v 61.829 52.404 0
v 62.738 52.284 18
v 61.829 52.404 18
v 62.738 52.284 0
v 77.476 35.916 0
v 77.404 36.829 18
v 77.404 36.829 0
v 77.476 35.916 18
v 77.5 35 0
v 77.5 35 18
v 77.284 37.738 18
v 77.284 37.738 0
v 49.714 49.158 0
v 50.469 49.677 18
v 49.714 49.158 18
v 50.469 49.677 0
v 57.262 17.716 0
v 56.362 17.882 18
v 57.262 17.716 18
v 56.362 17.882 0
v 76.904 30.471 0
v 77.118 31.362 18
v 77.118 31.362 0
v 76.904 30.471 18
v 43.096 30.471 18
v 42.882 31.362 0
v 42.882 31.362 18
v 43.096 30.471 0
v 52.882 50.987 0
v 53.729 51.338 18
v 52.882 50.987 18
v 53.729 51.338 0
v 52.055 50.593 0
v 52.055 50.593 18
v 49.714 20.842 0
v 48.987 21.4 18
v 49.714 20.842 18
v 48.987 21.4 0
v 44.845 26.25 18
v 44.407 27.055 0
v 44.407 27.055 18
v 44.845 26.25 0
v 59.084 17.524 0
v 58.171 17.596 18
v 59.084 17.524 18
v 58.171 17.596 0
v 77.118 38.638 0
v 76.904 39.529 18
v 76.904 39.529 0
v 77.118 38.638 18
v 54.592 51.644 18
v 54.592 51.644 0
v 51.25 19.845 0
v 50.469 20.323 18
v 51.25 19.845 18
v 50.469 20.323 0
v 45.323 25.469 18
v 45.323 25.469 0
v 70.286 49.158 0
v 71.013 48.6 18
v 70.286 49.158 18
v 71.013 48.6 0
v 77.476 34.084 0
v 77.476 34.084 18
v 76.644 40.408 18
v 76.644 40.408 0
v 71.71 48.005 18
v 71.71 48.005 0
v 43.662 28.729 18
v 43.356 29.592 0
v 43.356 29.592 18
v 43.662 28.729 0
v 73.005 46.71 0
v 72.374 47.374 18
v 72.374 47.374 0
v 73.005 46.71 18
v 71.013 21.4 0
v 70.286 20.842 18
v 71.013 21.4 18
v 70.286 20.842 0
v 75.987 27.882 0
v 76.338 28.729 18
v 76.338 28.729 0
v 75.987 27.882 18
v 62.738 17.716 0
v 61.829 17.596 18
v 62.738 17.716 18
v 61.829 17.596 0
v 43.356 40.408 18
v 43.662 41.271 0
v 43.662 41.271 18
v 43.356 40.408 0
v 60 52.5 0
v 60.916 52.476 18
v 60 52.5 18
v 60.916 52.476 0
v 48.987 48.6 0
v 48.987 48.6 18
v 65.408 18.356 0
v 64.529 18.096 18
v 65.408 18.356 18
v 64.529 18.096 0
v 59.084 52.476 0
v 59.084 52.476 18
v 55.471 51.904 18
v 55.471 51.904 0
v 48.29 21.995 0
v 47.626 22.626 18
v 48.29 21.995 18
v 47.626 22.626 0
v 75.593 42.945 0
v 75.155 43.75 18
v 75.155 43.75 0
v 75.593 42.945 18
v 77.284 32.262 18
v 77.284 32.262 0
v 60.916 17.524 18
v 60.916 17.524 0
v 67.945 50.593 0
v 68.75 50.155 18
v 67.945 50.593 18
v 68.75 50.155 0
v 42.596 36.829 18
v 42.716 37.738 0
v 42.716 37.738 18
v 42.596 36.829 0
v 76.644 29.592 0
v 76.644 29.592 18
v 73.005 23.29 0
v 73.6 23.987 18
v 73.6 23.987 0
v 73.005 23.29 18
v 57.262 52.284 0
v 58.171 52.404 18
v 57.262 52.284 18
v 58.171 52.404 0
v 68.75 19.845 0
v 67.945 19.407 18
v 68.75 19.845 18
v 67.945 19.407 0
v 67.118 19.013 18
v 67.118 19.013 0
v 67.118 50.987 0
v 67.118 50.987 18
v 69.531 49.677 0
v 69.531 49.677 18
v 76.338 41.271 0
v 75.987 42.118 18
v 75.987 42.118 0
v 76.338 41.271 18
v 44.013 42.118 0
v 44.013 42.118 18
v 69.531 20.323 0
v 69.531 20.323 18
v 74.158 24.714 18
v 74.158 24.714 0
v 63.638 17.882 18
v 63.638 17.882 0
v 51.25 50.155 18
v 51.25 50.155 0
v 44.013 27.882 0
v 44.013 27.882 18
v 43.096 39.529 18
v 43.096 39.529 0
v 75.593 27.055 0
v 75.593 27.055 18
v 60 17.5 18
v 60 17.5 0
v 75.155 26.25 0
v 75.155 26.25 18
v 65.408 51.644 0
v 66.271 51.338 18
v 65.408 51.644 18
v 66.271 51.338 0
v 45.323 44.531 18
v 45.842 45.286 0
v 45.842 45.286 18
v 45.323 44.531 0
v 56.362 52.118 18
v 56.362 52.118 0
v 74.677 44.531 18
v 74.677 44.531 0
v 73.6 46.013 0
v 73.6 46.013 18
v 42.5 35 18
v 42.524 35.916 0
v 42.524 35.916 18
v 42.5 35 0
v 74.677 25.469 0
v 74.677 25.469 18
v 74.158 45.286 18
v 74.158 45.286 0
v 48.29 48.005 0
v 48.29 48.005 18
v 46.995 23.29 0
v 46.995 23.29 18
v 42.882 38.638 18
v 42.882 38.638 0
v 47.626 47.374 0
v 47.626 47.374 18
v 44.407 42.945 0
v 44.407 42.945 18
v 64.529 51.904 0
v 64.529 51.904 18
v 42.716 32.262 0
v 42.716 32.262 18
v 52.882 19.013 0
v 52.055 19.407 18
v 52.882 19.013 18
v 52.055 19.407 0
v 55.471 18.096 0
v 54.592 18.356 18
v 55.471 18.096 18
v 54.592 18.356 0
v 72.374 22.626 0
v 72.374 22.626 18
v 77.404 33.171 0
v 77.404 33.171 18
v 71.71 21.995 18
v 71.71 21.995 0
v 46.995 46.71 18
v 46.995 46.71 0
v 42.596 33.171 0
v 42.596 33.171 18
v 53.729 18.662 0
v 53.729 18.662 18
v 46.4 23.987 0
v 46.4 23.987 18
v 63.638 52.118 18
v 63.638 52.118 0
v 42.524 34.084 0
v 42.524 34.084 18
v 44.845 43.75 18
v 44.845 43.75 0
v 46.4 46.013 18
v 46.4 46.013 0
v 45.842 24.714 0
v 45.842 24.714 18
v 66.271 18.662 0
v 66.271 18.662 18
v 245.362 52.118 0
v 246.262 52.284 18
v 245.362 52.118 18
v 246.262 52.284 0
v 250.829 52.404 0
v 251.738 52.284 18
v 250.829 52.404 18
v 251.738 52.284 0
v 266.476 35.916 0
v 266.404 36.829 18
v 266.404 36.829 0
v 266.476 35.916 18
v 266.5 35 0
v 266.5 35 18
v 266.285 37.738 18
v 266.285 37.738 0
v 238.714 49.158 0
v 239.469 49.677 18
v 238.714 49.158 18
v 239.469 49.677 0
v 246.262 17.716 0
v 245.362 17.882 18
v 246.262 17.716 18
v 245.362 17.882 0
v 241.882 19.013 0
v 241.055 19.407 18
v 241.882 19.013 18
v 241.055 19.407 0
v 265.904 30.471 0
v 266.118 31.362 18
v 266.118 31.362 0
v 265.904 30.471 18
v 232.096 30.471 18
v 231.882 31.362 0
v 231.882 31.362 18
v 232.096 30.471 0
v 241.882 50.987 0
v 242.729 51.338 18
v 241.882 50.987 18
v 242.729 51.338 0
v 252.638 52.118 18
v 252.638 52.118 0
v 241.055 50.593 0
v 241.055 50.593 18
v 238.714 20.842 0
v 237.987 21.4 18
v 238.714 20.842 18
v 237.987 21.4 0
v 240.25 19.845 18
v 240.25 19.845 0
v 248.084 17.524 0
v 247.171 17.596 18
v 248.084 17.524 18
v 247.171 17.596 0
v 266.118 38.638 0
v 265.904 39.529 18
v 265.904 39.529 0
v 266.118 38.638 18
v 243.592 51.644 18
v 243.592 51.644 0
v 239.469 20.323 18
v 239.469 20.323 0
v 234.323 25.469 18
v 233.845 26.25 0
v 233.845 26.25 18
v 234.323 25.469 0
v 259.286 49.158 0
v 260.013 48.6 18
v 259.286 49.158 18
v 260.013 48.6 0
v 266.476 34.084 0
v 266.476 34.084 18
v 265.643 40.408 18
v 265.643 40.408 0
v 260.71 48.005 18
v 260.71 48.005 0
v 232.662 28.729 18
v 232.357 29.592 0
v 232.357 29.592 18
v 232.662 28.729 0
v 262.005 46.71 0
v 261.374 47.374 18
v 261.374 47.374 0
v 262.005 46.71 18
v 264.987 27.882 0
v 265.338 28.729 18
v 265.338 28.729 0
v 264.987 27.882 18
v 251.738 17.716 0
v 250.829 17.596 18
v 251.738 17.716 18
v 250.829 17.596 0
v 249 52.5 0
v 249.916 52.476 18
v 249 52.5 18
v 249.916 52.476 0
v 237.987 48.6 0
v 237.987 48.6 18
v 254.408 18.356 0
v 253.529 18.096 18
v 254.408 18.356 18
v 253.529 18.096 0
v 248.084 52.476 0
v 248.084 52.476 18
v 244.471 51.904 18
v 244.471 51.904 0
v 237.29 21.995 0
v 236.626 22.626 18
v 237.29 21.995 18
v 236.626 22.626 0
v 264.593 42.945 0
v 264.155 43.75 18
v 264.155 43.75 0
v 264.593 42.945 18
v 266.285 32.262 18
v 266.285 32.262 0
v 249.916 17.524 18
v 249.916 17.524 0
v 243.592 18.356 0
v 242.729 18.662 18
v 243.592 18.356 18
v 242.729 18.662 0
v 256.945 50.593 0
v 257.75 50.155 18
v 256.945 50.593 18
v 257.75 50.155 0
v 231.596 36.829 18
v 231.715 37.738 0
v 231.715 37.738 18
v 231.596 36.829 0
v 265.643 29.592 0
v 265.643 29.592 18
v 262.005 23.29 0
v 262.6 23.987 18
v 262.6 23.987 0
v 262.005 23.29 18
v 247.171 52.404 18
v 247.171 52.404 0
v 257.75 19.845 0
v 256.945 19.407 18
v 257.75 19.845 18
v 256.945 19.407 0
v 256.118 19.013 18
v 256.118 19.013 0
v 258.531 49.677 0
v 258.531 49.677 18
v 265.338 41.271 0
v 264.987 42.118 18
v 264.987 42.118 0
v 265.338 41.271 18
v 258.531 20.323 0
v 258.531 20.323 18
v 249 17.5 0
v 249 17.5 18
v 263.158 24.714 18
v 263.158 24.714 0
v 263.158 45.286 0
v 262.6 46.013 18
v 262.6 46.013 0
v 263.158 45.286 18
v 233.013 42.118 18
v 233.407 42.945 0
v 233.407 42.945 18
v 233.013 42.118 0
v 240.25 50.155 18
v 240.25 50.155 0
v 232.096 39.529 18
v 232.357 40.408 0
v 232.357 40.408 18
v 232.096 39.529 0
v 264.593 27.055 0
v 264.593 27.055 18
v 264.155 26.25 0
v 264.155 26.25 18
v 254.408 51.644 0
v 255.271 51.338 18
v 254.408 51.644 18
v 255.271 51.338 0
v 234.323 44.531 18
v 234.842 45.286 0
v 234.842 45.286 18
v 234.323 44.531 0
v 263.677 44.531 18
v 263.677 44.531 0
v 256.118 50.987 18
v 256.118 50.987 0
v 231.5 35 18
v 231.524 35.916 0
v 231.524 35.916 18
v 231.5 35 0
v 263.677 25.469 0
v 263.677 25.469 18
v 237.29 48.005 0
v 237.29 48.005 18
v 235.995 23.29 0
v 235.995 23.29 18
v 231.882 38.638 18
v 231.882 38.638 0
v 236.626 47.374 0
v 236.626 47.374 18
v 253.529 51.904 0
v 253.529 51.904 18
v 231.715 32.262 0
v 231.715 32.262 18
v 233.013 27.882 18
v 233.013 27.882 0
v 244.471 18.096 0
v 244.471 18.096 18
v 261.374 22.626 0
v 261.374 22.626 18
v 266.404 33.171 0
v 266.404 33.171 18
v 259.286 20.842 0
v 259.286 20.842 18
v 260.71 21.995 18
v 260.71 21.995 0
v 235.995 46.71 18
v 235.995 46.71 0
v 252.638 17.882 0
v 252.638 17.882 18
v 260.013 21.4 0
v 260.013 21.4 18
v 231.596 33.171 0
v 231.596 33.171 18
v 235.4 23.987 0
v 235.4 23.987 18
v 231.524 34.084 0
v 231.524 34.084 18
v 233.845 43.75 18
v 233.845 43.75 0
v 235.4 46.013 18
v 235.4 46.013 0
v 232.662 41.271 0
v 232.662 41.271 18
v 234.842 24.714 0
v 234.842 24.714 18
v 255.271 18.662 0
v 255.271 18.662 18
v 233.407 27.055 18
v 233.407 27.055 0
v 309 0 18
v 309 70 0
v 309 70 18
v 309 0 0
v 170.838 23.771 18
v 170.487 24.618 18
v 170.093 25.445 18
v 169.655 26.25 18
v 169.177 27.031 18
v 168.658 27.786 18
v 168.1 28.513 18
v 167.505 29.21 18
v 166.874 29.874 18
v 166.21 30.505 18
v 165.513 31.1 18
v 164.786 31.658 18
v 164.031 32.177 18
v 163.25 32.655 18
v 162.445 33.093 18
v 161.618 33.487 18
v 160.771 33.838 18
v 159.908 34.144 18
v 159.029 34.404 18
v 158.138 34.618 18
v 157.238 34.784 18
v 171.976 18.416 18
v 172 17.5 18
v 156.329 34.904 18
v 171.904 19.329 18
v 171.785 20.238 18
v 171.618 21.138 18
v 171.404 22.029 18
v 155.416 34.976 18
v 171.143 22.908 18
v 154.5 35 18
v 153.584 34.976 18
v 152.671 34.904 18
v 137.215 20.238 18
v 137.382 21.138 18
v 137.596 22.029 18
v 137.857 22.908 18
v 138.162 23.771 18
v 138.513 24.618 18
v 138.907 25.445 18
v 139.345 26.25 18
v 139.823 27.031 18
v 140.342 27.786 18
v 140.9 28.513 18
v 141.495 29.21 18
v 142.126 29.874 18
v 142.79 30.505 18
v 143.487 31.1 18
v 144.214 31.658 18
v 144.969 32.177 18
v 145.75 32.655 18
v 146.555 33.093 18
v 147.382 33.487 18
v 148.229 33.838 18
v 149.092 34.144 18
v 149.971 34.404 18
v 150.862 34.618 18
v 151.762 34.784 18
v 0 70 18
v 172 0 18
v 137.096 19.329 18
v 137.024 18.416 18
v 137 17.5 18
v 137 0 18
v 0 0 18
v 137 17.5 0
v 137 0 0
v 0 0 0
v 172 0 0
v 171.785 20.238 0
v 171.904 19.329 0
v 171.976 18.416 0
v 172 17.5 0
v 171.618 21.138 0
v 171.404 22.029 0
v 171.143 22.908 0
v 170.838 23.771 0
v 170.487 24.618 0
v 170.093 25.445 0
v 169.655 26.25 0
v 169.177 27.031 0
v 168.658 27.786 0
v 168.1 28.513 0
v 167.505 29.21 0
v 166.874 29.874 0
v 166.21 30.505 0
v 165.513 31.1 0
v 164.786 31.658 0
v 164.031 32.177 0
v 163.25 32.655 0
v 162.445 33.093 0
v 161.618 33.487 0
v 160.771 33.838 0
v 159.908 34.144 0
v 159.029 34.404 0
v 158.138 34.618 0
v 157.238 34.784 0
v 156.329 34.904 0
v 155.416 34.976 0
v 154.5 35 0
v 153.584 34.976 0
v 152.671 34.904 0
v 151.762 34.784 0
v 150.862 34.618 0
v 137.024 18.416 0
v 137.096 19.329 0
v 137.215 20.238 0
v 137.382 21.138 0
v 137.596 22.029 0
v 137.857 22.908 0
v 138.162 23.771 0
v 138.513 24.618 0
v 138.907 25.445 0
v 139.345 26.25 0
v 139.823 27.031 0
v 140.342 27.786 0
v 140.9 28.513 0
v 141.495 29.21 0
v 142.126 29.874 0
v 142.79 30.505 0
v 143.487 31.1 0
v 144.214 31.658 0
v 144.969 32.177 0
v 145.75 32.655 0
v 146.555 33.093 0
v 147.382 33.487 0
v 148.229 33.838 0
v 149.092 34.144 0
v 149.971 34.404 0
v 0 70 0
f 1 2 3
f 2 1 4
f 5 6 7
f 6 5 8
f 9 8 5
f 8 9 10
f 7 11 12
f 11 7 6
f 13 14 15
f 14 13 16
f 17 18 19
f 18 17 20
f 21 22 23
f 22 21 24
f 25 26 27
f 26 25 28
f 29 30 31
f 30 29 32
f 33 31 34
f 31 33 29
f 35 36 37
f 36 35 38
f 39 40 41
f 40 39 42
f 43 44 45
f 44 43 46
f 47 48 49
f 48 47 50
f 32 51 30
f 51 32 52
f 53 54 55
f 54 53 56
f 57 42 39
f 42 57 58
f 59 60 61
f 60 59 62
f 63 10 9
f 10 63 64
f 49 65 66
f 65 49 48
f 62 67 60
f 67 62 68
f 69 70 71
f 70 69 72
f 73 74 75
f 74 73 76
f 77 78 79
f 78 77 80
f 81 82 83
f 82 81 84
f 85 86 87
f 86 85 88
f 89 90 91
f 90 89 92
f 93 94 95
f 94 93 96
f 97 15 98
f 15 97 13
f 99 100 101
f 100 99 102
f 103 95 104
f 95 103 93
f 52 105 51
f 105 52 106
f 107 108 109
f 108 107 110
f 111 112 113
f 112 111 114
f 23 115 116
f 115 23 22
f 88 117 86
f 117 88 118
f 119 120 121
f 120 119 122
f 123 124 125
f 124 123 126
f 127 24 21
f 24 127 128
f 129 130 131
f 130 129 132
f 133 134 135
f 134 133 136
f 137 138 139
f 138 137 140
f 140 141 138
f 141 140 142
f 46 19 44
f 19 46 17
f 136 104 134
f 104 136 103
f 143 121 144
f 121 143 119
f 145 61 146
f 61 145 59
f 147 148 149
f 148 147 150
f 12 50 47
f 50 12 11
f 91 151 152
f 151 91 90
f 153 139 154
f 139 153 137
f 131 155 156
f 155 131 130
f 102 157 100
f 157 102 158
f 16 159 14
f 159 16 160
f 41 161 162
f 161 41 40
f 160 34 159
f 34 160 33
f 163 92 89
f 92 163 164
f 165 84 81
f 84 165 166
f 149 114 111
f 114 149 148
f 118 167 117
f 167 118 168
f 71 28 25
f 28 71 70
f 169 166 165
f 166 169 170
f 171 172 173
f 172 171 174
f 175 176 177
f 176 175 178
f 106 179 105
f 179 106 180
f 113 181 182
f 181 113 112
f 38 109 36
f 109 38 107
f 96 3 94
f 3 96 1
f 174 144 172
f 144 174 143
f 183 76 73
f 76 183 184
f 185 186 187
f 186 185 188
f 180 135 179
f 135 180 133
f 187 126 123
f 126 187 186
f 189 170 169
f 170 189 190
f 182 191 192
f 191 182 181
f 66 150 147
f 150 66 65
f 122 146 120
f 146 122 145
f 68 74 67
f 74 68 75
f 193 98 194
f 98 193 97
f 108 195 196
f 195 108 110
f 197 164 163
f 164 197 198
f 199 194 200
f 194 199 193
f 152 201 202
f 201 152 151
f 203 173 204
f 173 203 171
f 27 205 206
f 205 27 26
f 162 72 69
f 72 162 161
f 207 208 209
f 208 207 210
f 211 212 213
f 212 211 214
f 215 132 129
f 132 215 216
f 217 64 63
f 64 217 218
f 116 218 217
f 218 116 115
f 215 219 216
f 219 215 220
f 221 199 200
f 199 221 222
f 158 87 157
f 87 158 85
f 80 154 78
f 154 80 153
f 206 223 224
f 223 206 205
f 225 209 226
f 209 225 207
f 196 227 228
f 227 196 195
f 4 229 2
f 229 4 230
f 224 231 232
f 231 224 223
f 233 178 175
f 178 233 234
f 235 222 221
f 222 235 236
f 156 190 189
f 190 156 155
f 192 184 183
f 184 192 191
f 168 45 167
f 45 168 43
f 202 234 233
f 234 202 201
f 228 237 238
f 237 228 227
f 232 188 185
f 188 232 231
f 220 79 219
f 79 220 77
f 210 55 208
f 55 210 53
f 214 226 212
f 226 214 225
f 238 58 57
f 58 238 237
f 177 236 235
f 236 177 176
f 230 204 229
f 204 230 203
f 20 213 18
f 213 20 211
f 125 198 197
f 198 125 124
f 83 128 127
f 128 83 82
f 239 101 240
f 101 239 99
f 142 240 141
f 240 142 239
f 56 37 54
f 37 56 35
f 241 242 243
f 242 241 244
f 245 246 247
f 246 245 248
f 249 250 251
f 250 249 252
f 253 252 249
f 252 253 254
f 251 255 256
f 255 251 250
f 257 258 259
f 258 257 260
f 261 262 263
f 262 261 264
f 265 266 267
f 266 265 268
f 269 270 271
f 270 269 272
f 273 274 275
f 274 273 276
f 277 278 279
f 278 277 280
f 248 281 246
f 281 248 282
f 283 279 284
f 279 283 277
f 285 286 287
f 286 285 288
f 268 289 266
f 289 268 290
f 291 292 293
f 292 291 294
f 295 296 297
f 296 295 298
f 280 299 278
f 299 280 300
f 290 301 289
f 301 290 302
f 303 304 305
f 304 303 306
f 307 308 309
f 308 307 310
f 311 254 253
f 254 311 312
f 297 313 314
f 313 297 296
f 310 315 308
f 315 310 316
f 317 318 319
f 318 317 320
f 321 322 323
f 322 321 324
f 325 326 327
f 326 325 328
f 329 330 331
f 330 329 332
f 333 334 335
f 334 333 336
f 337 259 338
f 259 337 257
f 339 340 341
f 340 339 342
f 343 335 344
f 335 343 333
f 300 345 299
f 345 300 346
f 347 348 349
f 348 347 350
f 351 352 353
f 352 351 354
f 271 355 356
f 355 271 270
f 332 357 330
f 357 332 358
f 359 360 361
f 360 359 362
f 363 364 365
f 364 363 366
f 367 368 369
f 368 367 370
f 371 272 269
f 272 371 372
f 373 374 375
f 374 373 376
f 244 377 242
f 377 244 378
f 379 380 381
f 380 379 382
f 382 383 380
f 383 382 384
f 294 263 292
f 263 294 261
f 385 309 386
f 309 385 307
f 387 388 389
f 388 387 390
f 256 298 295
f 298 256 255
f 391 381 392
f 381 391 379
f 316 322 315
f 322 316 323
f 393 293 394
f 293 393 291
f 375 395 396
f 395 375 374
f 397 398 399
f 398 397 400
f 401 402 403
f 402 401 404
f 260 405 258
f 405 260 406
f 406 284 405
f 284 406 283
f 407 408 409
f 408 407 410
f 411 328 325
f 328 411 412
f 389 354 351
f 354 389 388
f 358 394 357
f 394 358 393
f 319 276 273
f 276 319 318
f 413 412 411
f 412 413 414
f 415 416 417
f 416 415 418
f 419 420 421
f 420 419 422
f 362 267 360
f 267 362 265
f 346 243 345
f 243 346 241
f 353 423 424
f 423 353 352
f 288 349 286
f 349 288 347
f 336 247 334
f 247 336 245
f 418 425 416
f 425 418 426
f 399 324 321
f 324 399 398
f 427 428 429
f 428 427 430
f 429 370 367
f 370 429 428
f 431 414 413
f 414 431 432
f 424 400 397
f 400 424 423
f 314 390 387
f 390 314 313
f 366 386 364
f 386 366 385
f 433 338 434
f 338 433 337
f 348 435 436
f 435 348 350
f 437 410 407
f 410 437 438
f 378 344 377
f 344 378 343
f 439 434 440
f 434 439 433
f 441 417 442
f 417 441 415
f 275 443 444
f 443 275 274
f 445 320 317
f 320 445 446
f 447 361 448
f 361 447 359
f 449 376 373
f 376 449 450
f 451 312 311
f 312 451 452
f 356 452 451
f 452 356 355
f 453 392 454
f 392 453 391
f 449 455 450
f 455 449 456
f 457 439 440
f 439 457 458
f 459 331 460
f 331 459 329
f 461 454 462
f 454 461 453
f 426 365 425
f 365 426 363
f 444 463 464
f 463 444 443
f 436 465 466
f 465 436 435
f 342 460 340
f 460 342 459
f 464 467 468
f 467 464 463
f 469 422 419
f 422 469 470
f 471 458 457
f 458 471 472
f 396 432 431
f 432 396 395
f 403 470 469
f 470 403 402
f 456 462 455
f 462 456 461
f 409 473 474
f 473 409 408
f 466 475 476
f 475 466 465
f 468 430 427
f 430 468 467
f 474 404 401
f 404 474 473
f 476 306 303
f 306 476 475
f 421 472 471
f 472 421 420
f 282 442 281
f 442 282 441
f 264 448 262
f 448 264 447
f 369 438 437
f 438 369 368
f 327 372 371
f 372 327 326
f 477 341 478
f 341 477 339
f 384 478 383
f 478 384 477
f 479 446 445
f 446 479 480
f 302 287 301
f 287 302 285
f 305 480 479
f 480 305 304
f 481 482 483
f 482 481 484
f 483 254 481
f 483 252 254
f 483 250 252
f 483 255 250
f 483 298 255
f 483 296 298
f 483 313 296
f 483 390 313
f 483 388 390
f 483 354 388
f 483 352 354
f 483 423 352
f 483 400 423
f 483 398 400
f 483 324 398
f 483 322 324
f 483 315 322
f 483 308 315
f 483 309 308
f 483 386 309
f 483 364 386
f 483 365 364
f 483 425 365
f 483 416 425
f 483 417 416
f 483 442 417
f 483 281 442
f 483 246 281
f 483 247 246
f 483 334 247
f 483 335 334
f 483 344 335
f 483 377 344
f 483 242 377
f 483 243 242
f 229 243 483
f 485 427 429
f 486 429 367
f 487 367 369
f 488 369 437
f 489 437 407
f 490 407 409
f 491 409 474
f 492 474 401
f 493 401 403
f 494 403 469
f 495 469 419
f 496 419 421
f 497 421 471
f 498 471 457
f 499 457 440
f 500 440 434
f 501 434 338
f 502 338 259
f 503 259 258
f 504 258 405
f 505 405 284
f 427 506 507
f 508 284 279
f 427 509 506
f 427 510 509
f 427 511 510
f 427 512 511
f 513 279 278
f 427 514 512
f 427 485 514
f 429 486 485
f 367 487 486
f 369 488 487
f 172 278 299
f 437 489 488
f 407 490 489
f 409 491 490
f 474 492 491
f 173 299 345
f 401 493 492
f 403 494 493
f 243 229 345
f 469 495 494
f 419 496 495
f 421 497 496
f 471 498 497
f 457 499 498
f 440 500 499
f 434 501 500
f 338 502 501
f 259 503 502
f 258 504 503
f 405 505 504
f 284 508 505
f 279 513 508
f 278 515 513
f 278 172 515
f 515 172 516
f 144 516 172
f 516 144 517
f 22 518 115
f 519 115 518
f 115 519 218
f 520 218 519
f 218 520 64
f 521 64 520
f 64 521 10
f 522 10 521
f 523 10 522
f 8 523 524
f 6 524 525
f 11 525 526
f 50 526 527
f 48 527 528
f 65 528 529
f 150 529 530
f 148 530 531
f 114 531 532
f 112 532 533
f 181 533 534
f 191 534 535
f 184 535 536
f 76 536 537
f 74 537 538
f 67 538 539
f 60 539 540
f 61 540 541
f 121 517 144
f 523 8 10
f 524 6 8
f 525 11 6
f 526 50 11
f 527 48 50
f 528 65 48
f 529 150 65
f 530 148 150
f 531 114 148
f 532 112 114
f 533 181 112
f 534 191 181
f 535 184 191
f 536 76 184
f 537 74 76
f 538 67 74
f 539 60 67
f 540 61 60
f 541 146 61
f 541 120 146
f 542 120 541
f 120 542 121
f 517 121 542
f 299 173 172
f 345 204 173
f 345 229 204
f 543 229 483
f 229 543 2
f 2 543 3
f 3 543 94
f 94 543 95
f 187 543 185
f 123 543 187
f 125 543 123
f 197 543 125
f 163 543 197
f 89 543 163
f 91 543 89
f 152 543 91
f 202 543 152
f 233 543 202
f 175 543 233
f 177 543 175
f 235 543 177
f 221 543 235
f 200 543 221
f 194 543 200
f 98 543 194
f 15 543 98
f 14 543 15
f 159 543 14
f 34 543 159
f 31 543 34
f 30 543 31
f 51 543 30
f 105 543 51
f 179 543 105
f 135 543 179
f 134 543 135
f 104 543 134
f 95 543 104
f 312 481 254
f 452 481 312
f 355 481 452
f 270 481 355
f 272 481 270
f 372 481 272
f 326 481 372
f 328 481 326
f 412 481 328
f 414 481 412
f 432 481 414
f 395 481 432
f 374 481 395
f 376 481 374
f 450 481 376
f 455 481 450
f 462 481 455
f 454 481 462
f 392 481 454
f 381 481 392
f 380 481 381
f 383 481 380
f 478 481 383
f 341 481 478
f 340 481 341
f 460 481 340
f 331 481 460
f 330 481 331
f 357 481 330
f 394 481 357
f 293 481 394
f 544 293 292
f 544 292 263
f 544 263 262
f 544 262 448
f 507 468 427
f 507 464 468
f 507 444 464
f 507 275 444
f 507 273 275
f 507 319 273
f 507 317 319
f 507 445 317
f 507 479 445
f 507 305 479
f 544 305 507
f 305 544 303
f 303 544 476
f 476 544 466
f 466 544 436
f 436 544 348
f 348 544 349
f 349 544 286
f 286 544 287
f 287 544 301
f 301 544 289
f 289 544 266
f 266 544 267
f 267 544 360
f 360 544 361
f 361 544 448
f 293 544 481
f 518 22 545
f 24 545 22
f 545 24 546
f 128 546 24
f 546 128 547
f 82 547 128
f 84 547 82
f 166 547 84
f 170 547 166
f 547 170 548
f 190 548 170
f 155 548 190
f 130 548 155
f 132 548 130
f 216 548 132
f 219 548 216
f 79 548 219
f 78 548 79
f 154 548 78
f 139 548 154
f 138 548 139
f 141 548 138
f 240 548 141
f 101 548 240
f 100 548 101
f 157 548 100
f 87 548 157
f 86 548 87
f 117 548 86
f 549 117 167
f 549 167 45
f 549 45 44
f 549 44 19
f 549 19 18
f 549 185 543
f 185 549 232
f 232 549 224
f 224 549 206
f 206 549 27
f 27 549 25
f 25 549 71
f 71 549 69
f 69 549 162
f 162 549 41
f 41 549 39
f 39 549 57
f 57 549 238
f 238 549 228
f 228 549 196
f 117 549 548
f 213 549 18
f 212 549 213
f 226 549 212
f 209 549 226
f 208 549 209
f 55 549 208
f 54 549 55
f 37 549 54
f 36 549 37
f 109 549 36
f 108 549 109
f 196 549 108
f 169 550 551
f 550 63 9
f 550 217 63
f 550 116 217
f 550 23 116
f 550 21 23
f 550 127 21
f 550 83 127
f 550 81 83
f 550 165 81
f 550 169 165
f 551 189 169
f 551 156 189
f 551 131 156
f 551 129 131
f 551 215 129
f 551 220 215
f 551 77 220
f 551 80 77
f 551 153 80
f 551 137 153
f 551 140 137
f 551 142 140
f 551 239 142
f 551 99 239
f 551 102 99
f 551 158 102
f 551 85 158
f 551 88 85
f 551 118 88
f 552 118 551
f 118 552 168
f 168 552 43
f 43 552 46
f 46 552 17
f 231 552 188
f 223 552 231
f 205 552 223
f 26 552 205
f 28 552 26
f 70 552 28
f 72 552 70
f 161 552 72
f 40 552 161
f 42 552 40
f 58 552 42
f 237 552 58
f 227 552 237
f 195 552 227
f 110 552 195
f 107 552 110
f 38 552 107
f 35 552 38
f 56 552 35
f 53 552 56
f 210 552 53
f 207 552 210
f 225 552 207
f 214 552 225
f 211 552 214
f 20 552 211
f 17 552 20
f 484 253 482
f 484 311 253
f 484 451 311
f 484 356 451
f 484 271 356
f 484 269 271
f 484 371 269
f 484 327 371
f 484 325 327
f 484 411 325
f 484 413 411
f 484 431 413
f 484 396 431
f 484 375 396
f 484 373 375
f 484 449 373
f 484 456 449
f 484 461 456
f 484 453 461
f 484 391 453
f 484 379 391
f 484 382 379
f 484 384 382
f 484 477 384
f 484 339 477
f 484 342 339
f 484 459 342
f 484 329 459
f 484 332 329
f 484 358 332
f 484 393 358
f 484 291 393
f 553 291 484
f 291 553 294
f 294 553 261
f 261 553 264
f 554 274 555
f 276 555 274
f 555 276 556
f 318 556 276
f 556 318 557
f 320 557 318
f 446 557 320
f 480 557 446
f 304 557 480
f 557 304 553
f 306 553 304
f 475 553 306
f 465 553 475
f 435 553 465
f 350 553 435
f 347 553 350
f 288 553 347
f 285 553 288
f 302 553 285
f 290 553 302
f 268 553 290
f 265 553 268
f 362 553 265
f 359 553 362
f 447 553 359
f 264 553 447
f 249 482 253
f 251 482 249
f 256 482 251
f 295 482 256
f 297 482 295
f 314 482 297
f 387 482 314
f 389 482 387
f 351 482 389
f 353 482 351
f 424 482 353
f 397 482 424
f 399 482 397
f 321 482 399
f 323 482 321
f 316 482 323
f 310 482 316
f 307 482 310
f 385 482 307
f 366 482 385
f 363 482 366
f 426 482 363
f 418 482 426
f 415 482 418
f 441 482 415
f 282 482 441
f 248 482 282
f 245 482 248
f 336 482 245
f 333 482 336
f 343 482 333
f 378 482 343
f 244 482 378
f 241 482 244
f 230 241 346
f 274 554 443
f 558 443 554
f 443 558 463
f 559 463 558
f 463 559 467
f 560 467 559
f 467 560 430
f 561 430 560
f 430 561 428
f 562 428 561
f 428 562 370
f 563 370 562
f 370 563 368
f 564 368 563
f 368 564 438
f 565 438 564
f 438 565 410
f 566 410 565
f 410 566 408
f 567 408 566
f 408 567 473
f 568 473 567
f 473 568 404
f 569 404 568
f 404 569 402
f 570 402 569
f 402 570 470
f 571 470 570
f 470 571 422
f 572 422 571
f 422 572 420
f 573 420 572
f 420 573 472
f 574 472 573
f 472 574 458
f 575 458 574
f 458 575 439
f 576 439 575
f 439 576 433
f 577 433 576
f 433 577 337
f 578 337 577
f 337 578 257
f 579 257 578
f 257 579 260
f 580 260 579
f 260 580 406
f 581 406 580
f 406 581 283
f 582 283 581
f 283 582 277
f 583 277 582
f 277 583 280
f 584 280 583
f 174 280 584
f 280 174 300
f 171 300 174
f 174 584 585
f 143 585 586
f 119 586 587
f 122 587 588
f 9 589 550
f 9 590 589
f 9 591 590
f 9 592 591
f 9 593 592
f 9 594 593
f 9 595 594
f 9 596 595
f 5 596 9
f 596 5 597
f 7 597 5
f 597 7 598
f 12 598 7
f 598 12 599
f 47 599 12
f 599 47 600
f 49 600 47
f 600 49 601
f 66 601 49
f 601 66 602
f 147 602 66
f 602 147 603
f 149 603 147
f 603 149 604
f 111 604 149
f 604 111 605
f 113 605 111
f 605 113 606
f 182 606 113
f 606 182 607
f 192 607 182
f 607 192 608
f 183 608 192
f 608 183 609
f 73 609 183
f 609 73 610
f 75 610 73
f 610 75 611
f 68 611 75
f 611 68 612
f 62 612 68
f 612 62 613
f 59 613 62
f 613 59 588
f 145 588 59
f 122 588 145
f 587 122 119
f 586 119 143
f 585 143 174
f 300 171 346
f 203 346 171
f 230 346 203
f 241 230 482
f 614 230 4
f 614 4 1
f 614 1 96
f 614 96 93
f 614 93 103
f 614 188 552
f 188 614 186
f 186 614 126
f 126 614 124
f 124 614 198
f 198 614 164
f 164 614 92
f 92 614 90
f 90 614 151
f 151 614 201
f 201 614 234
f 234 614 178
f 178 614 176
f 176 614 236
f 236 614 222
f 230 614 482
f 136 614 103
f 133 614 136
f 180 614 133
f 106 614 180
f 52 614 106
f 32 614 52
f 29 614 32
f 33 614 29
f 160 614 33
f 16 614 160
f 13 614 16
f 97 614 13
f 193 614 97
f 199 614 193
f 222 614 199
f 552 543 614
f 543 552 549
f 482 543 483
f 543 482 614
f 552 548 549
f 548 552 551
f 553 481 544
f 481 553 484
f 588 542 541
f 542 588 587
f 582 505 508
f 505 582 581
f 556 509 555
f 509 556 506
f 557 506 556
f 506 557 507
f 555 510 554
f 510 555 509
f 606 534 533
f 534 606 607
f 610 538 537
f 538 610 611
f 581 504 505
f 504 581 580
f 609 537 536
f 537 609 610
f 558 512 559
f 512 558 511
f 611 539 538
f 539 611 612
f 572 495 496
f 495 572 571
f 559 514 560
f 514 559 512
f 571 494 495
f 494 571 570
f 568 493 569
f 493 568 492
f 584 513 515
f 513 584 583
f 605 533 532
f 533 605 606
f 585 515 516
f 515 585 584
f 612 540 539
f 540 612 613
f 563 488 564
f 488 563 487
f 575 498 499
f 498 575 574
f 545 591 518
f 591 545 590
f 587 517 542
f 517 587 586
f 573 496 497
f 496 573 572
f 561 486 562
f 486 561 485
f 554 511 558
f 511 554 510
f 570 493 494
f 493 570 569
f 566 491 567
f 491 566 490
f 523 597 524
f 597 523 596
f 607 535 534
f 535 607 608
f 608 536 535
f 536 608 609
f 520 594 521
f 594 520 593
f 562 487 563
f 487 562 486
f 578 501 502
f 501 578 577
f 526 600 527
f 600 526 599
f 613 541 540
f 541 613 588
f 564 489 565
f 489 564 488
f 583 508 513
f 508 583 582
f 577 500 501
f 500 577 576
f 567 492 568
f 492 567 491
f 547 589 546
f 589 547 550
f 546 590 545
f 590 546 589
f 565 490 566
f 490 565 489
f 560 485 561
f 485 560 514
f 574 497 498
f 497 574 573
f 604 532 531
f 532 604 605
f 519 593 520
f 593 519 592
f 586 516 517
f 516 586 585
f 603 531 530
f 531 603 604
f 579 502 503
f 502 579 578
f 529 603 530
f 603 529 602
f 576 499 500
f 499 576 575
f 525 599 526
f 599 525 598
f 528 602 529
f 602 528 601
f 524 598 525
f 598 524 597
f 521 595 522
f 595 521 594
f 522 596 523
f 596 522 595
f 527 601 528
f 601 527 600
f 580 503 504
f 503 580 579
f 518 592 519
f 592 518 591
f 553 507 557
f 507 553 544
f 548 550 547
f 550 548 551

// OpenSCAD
// file: screw-hole.scad
// Generic screw holder

// Copyright (C) 2021 Jeremy Bennett <jeremy@jeremybennett.com>

// Contributor Jeremy Bennett <jeremy@jeremybennett.com>

// SPDX-License-Identifier: CC-BY-SA-4.0


// The countersink height is calculated as:
//
//      x - y
//    ----------
//    2 tan(B/2)
//
// where x is the head diameter, y is the shank diameter and B is the head
// angle (100 degrees for DIN 7997x I believe).
//
// Table of 2 tan(B/2) for various B
//
//  60    1.1547
//  82    1.7386
//  90    2.0000
// 100    2.3835
// 110    2.8563

// Small amount
CS_EPS = 0.1;

// Height of rim above countersink
CS_RIM_HEIGHT = 0.3;

// Screw height - effectively infinite!
SCREW_HEIGHT = 100;

// Table of screw dimensions for DIN 7997z countersunk wood screws
// Entry is thread diameter, head diameter, head height.
SCREW_TAB = [ [2.5,  4.7, 1.50],
	      [3.0,  5.6, 1.65],
	      [3.5,  6.5, 1.93],
	      [4.0,  7.5, 2.20],
	      [4.5,  8.3, 2.35],
	      [5.0,  9.2, 2.50],
	      [5.5, 10.2, 2.75],
	      [6.0, 11.0, 3.00],
              [0.0,  0.0, 0.00] ];		// End marker

// Recursively look up dimensions in the SCREW_TAB
function recursive_screw_dims (diam, n) =
     ( (SCREW_TAB[n][0] == 0.0) ? SCREW_TAB[n] :
       (SCREW_TAB[n][0] == diam) ? SCREW_TAB[n] :
       recursive_screw_dims (diam, n + 1) );

// Look up a screw's dimensions
function screw_dims (diam = 4.0) = recursive_screw_dims (diam, 0);

// Hole for a countersink screw
module screw_hole (shank_diam, invert = true) {
     let (dims = screw_dims (shank_diam),
	  head_diam = dims[1],
	  cs_height = dims[2],
	  screw_angle = invert ? 180 : 0) {
	  rotate (a = [0, screw_angle, 0]) {
	       cylinder(r = head_diam / 2, h = CS_RIM_HEIGHT + CS_EPS,
			center = false, $fn = 45);
	       translate(v = [0, 0, CS_RIM_HEIGHT])
	            cylinder(r1 = head_diam / 2, r2 = shank_diam / 2,
			     h = cs_height, center = false, $fn = 45);
	       cylinder(r = shank_diam / 2, h = SCREW_HEIGHT, center = false,
			$fn = 45);
	  }
     }
}
// main file
// Base back support
//
// Copyright (C) 2021 Jeremy Bennett <jeremy@jeremybennett.com>
// Contributor Jeremy Bennett <jeremy@jeremybennett.com>
//
// This is part of the open source laptop stand
//
// SPDX-License-Identifier: CC-BY-SA-4.0

// The support for the back of the base

include <screw-hole.scad>

EPS = 0.01;
D = 18.0;
L = 345.0 - 2 * D;

difference () {
     // The board
     cube (size = [L, 70.0, D], center = false);
     // Cutouts for cables
     for (xoff = [60.0, L - 60])
	  translate (v = [xoff, 70.0 / 2, 0])
	       cylinder (r = 35.0 / 2.0, h = D * 4, center = true, $fn = 120);
     translate (v = [L / 2, 70.0 / 4, 0])
	  cylinder (r = 35.0 / 2.0, h = D * 4, center = true, $fn = 120);
     translate (v = [L/2, 0, 0])
	  cube (size = [35.0, 35.0, D * 4], center = true);
}
